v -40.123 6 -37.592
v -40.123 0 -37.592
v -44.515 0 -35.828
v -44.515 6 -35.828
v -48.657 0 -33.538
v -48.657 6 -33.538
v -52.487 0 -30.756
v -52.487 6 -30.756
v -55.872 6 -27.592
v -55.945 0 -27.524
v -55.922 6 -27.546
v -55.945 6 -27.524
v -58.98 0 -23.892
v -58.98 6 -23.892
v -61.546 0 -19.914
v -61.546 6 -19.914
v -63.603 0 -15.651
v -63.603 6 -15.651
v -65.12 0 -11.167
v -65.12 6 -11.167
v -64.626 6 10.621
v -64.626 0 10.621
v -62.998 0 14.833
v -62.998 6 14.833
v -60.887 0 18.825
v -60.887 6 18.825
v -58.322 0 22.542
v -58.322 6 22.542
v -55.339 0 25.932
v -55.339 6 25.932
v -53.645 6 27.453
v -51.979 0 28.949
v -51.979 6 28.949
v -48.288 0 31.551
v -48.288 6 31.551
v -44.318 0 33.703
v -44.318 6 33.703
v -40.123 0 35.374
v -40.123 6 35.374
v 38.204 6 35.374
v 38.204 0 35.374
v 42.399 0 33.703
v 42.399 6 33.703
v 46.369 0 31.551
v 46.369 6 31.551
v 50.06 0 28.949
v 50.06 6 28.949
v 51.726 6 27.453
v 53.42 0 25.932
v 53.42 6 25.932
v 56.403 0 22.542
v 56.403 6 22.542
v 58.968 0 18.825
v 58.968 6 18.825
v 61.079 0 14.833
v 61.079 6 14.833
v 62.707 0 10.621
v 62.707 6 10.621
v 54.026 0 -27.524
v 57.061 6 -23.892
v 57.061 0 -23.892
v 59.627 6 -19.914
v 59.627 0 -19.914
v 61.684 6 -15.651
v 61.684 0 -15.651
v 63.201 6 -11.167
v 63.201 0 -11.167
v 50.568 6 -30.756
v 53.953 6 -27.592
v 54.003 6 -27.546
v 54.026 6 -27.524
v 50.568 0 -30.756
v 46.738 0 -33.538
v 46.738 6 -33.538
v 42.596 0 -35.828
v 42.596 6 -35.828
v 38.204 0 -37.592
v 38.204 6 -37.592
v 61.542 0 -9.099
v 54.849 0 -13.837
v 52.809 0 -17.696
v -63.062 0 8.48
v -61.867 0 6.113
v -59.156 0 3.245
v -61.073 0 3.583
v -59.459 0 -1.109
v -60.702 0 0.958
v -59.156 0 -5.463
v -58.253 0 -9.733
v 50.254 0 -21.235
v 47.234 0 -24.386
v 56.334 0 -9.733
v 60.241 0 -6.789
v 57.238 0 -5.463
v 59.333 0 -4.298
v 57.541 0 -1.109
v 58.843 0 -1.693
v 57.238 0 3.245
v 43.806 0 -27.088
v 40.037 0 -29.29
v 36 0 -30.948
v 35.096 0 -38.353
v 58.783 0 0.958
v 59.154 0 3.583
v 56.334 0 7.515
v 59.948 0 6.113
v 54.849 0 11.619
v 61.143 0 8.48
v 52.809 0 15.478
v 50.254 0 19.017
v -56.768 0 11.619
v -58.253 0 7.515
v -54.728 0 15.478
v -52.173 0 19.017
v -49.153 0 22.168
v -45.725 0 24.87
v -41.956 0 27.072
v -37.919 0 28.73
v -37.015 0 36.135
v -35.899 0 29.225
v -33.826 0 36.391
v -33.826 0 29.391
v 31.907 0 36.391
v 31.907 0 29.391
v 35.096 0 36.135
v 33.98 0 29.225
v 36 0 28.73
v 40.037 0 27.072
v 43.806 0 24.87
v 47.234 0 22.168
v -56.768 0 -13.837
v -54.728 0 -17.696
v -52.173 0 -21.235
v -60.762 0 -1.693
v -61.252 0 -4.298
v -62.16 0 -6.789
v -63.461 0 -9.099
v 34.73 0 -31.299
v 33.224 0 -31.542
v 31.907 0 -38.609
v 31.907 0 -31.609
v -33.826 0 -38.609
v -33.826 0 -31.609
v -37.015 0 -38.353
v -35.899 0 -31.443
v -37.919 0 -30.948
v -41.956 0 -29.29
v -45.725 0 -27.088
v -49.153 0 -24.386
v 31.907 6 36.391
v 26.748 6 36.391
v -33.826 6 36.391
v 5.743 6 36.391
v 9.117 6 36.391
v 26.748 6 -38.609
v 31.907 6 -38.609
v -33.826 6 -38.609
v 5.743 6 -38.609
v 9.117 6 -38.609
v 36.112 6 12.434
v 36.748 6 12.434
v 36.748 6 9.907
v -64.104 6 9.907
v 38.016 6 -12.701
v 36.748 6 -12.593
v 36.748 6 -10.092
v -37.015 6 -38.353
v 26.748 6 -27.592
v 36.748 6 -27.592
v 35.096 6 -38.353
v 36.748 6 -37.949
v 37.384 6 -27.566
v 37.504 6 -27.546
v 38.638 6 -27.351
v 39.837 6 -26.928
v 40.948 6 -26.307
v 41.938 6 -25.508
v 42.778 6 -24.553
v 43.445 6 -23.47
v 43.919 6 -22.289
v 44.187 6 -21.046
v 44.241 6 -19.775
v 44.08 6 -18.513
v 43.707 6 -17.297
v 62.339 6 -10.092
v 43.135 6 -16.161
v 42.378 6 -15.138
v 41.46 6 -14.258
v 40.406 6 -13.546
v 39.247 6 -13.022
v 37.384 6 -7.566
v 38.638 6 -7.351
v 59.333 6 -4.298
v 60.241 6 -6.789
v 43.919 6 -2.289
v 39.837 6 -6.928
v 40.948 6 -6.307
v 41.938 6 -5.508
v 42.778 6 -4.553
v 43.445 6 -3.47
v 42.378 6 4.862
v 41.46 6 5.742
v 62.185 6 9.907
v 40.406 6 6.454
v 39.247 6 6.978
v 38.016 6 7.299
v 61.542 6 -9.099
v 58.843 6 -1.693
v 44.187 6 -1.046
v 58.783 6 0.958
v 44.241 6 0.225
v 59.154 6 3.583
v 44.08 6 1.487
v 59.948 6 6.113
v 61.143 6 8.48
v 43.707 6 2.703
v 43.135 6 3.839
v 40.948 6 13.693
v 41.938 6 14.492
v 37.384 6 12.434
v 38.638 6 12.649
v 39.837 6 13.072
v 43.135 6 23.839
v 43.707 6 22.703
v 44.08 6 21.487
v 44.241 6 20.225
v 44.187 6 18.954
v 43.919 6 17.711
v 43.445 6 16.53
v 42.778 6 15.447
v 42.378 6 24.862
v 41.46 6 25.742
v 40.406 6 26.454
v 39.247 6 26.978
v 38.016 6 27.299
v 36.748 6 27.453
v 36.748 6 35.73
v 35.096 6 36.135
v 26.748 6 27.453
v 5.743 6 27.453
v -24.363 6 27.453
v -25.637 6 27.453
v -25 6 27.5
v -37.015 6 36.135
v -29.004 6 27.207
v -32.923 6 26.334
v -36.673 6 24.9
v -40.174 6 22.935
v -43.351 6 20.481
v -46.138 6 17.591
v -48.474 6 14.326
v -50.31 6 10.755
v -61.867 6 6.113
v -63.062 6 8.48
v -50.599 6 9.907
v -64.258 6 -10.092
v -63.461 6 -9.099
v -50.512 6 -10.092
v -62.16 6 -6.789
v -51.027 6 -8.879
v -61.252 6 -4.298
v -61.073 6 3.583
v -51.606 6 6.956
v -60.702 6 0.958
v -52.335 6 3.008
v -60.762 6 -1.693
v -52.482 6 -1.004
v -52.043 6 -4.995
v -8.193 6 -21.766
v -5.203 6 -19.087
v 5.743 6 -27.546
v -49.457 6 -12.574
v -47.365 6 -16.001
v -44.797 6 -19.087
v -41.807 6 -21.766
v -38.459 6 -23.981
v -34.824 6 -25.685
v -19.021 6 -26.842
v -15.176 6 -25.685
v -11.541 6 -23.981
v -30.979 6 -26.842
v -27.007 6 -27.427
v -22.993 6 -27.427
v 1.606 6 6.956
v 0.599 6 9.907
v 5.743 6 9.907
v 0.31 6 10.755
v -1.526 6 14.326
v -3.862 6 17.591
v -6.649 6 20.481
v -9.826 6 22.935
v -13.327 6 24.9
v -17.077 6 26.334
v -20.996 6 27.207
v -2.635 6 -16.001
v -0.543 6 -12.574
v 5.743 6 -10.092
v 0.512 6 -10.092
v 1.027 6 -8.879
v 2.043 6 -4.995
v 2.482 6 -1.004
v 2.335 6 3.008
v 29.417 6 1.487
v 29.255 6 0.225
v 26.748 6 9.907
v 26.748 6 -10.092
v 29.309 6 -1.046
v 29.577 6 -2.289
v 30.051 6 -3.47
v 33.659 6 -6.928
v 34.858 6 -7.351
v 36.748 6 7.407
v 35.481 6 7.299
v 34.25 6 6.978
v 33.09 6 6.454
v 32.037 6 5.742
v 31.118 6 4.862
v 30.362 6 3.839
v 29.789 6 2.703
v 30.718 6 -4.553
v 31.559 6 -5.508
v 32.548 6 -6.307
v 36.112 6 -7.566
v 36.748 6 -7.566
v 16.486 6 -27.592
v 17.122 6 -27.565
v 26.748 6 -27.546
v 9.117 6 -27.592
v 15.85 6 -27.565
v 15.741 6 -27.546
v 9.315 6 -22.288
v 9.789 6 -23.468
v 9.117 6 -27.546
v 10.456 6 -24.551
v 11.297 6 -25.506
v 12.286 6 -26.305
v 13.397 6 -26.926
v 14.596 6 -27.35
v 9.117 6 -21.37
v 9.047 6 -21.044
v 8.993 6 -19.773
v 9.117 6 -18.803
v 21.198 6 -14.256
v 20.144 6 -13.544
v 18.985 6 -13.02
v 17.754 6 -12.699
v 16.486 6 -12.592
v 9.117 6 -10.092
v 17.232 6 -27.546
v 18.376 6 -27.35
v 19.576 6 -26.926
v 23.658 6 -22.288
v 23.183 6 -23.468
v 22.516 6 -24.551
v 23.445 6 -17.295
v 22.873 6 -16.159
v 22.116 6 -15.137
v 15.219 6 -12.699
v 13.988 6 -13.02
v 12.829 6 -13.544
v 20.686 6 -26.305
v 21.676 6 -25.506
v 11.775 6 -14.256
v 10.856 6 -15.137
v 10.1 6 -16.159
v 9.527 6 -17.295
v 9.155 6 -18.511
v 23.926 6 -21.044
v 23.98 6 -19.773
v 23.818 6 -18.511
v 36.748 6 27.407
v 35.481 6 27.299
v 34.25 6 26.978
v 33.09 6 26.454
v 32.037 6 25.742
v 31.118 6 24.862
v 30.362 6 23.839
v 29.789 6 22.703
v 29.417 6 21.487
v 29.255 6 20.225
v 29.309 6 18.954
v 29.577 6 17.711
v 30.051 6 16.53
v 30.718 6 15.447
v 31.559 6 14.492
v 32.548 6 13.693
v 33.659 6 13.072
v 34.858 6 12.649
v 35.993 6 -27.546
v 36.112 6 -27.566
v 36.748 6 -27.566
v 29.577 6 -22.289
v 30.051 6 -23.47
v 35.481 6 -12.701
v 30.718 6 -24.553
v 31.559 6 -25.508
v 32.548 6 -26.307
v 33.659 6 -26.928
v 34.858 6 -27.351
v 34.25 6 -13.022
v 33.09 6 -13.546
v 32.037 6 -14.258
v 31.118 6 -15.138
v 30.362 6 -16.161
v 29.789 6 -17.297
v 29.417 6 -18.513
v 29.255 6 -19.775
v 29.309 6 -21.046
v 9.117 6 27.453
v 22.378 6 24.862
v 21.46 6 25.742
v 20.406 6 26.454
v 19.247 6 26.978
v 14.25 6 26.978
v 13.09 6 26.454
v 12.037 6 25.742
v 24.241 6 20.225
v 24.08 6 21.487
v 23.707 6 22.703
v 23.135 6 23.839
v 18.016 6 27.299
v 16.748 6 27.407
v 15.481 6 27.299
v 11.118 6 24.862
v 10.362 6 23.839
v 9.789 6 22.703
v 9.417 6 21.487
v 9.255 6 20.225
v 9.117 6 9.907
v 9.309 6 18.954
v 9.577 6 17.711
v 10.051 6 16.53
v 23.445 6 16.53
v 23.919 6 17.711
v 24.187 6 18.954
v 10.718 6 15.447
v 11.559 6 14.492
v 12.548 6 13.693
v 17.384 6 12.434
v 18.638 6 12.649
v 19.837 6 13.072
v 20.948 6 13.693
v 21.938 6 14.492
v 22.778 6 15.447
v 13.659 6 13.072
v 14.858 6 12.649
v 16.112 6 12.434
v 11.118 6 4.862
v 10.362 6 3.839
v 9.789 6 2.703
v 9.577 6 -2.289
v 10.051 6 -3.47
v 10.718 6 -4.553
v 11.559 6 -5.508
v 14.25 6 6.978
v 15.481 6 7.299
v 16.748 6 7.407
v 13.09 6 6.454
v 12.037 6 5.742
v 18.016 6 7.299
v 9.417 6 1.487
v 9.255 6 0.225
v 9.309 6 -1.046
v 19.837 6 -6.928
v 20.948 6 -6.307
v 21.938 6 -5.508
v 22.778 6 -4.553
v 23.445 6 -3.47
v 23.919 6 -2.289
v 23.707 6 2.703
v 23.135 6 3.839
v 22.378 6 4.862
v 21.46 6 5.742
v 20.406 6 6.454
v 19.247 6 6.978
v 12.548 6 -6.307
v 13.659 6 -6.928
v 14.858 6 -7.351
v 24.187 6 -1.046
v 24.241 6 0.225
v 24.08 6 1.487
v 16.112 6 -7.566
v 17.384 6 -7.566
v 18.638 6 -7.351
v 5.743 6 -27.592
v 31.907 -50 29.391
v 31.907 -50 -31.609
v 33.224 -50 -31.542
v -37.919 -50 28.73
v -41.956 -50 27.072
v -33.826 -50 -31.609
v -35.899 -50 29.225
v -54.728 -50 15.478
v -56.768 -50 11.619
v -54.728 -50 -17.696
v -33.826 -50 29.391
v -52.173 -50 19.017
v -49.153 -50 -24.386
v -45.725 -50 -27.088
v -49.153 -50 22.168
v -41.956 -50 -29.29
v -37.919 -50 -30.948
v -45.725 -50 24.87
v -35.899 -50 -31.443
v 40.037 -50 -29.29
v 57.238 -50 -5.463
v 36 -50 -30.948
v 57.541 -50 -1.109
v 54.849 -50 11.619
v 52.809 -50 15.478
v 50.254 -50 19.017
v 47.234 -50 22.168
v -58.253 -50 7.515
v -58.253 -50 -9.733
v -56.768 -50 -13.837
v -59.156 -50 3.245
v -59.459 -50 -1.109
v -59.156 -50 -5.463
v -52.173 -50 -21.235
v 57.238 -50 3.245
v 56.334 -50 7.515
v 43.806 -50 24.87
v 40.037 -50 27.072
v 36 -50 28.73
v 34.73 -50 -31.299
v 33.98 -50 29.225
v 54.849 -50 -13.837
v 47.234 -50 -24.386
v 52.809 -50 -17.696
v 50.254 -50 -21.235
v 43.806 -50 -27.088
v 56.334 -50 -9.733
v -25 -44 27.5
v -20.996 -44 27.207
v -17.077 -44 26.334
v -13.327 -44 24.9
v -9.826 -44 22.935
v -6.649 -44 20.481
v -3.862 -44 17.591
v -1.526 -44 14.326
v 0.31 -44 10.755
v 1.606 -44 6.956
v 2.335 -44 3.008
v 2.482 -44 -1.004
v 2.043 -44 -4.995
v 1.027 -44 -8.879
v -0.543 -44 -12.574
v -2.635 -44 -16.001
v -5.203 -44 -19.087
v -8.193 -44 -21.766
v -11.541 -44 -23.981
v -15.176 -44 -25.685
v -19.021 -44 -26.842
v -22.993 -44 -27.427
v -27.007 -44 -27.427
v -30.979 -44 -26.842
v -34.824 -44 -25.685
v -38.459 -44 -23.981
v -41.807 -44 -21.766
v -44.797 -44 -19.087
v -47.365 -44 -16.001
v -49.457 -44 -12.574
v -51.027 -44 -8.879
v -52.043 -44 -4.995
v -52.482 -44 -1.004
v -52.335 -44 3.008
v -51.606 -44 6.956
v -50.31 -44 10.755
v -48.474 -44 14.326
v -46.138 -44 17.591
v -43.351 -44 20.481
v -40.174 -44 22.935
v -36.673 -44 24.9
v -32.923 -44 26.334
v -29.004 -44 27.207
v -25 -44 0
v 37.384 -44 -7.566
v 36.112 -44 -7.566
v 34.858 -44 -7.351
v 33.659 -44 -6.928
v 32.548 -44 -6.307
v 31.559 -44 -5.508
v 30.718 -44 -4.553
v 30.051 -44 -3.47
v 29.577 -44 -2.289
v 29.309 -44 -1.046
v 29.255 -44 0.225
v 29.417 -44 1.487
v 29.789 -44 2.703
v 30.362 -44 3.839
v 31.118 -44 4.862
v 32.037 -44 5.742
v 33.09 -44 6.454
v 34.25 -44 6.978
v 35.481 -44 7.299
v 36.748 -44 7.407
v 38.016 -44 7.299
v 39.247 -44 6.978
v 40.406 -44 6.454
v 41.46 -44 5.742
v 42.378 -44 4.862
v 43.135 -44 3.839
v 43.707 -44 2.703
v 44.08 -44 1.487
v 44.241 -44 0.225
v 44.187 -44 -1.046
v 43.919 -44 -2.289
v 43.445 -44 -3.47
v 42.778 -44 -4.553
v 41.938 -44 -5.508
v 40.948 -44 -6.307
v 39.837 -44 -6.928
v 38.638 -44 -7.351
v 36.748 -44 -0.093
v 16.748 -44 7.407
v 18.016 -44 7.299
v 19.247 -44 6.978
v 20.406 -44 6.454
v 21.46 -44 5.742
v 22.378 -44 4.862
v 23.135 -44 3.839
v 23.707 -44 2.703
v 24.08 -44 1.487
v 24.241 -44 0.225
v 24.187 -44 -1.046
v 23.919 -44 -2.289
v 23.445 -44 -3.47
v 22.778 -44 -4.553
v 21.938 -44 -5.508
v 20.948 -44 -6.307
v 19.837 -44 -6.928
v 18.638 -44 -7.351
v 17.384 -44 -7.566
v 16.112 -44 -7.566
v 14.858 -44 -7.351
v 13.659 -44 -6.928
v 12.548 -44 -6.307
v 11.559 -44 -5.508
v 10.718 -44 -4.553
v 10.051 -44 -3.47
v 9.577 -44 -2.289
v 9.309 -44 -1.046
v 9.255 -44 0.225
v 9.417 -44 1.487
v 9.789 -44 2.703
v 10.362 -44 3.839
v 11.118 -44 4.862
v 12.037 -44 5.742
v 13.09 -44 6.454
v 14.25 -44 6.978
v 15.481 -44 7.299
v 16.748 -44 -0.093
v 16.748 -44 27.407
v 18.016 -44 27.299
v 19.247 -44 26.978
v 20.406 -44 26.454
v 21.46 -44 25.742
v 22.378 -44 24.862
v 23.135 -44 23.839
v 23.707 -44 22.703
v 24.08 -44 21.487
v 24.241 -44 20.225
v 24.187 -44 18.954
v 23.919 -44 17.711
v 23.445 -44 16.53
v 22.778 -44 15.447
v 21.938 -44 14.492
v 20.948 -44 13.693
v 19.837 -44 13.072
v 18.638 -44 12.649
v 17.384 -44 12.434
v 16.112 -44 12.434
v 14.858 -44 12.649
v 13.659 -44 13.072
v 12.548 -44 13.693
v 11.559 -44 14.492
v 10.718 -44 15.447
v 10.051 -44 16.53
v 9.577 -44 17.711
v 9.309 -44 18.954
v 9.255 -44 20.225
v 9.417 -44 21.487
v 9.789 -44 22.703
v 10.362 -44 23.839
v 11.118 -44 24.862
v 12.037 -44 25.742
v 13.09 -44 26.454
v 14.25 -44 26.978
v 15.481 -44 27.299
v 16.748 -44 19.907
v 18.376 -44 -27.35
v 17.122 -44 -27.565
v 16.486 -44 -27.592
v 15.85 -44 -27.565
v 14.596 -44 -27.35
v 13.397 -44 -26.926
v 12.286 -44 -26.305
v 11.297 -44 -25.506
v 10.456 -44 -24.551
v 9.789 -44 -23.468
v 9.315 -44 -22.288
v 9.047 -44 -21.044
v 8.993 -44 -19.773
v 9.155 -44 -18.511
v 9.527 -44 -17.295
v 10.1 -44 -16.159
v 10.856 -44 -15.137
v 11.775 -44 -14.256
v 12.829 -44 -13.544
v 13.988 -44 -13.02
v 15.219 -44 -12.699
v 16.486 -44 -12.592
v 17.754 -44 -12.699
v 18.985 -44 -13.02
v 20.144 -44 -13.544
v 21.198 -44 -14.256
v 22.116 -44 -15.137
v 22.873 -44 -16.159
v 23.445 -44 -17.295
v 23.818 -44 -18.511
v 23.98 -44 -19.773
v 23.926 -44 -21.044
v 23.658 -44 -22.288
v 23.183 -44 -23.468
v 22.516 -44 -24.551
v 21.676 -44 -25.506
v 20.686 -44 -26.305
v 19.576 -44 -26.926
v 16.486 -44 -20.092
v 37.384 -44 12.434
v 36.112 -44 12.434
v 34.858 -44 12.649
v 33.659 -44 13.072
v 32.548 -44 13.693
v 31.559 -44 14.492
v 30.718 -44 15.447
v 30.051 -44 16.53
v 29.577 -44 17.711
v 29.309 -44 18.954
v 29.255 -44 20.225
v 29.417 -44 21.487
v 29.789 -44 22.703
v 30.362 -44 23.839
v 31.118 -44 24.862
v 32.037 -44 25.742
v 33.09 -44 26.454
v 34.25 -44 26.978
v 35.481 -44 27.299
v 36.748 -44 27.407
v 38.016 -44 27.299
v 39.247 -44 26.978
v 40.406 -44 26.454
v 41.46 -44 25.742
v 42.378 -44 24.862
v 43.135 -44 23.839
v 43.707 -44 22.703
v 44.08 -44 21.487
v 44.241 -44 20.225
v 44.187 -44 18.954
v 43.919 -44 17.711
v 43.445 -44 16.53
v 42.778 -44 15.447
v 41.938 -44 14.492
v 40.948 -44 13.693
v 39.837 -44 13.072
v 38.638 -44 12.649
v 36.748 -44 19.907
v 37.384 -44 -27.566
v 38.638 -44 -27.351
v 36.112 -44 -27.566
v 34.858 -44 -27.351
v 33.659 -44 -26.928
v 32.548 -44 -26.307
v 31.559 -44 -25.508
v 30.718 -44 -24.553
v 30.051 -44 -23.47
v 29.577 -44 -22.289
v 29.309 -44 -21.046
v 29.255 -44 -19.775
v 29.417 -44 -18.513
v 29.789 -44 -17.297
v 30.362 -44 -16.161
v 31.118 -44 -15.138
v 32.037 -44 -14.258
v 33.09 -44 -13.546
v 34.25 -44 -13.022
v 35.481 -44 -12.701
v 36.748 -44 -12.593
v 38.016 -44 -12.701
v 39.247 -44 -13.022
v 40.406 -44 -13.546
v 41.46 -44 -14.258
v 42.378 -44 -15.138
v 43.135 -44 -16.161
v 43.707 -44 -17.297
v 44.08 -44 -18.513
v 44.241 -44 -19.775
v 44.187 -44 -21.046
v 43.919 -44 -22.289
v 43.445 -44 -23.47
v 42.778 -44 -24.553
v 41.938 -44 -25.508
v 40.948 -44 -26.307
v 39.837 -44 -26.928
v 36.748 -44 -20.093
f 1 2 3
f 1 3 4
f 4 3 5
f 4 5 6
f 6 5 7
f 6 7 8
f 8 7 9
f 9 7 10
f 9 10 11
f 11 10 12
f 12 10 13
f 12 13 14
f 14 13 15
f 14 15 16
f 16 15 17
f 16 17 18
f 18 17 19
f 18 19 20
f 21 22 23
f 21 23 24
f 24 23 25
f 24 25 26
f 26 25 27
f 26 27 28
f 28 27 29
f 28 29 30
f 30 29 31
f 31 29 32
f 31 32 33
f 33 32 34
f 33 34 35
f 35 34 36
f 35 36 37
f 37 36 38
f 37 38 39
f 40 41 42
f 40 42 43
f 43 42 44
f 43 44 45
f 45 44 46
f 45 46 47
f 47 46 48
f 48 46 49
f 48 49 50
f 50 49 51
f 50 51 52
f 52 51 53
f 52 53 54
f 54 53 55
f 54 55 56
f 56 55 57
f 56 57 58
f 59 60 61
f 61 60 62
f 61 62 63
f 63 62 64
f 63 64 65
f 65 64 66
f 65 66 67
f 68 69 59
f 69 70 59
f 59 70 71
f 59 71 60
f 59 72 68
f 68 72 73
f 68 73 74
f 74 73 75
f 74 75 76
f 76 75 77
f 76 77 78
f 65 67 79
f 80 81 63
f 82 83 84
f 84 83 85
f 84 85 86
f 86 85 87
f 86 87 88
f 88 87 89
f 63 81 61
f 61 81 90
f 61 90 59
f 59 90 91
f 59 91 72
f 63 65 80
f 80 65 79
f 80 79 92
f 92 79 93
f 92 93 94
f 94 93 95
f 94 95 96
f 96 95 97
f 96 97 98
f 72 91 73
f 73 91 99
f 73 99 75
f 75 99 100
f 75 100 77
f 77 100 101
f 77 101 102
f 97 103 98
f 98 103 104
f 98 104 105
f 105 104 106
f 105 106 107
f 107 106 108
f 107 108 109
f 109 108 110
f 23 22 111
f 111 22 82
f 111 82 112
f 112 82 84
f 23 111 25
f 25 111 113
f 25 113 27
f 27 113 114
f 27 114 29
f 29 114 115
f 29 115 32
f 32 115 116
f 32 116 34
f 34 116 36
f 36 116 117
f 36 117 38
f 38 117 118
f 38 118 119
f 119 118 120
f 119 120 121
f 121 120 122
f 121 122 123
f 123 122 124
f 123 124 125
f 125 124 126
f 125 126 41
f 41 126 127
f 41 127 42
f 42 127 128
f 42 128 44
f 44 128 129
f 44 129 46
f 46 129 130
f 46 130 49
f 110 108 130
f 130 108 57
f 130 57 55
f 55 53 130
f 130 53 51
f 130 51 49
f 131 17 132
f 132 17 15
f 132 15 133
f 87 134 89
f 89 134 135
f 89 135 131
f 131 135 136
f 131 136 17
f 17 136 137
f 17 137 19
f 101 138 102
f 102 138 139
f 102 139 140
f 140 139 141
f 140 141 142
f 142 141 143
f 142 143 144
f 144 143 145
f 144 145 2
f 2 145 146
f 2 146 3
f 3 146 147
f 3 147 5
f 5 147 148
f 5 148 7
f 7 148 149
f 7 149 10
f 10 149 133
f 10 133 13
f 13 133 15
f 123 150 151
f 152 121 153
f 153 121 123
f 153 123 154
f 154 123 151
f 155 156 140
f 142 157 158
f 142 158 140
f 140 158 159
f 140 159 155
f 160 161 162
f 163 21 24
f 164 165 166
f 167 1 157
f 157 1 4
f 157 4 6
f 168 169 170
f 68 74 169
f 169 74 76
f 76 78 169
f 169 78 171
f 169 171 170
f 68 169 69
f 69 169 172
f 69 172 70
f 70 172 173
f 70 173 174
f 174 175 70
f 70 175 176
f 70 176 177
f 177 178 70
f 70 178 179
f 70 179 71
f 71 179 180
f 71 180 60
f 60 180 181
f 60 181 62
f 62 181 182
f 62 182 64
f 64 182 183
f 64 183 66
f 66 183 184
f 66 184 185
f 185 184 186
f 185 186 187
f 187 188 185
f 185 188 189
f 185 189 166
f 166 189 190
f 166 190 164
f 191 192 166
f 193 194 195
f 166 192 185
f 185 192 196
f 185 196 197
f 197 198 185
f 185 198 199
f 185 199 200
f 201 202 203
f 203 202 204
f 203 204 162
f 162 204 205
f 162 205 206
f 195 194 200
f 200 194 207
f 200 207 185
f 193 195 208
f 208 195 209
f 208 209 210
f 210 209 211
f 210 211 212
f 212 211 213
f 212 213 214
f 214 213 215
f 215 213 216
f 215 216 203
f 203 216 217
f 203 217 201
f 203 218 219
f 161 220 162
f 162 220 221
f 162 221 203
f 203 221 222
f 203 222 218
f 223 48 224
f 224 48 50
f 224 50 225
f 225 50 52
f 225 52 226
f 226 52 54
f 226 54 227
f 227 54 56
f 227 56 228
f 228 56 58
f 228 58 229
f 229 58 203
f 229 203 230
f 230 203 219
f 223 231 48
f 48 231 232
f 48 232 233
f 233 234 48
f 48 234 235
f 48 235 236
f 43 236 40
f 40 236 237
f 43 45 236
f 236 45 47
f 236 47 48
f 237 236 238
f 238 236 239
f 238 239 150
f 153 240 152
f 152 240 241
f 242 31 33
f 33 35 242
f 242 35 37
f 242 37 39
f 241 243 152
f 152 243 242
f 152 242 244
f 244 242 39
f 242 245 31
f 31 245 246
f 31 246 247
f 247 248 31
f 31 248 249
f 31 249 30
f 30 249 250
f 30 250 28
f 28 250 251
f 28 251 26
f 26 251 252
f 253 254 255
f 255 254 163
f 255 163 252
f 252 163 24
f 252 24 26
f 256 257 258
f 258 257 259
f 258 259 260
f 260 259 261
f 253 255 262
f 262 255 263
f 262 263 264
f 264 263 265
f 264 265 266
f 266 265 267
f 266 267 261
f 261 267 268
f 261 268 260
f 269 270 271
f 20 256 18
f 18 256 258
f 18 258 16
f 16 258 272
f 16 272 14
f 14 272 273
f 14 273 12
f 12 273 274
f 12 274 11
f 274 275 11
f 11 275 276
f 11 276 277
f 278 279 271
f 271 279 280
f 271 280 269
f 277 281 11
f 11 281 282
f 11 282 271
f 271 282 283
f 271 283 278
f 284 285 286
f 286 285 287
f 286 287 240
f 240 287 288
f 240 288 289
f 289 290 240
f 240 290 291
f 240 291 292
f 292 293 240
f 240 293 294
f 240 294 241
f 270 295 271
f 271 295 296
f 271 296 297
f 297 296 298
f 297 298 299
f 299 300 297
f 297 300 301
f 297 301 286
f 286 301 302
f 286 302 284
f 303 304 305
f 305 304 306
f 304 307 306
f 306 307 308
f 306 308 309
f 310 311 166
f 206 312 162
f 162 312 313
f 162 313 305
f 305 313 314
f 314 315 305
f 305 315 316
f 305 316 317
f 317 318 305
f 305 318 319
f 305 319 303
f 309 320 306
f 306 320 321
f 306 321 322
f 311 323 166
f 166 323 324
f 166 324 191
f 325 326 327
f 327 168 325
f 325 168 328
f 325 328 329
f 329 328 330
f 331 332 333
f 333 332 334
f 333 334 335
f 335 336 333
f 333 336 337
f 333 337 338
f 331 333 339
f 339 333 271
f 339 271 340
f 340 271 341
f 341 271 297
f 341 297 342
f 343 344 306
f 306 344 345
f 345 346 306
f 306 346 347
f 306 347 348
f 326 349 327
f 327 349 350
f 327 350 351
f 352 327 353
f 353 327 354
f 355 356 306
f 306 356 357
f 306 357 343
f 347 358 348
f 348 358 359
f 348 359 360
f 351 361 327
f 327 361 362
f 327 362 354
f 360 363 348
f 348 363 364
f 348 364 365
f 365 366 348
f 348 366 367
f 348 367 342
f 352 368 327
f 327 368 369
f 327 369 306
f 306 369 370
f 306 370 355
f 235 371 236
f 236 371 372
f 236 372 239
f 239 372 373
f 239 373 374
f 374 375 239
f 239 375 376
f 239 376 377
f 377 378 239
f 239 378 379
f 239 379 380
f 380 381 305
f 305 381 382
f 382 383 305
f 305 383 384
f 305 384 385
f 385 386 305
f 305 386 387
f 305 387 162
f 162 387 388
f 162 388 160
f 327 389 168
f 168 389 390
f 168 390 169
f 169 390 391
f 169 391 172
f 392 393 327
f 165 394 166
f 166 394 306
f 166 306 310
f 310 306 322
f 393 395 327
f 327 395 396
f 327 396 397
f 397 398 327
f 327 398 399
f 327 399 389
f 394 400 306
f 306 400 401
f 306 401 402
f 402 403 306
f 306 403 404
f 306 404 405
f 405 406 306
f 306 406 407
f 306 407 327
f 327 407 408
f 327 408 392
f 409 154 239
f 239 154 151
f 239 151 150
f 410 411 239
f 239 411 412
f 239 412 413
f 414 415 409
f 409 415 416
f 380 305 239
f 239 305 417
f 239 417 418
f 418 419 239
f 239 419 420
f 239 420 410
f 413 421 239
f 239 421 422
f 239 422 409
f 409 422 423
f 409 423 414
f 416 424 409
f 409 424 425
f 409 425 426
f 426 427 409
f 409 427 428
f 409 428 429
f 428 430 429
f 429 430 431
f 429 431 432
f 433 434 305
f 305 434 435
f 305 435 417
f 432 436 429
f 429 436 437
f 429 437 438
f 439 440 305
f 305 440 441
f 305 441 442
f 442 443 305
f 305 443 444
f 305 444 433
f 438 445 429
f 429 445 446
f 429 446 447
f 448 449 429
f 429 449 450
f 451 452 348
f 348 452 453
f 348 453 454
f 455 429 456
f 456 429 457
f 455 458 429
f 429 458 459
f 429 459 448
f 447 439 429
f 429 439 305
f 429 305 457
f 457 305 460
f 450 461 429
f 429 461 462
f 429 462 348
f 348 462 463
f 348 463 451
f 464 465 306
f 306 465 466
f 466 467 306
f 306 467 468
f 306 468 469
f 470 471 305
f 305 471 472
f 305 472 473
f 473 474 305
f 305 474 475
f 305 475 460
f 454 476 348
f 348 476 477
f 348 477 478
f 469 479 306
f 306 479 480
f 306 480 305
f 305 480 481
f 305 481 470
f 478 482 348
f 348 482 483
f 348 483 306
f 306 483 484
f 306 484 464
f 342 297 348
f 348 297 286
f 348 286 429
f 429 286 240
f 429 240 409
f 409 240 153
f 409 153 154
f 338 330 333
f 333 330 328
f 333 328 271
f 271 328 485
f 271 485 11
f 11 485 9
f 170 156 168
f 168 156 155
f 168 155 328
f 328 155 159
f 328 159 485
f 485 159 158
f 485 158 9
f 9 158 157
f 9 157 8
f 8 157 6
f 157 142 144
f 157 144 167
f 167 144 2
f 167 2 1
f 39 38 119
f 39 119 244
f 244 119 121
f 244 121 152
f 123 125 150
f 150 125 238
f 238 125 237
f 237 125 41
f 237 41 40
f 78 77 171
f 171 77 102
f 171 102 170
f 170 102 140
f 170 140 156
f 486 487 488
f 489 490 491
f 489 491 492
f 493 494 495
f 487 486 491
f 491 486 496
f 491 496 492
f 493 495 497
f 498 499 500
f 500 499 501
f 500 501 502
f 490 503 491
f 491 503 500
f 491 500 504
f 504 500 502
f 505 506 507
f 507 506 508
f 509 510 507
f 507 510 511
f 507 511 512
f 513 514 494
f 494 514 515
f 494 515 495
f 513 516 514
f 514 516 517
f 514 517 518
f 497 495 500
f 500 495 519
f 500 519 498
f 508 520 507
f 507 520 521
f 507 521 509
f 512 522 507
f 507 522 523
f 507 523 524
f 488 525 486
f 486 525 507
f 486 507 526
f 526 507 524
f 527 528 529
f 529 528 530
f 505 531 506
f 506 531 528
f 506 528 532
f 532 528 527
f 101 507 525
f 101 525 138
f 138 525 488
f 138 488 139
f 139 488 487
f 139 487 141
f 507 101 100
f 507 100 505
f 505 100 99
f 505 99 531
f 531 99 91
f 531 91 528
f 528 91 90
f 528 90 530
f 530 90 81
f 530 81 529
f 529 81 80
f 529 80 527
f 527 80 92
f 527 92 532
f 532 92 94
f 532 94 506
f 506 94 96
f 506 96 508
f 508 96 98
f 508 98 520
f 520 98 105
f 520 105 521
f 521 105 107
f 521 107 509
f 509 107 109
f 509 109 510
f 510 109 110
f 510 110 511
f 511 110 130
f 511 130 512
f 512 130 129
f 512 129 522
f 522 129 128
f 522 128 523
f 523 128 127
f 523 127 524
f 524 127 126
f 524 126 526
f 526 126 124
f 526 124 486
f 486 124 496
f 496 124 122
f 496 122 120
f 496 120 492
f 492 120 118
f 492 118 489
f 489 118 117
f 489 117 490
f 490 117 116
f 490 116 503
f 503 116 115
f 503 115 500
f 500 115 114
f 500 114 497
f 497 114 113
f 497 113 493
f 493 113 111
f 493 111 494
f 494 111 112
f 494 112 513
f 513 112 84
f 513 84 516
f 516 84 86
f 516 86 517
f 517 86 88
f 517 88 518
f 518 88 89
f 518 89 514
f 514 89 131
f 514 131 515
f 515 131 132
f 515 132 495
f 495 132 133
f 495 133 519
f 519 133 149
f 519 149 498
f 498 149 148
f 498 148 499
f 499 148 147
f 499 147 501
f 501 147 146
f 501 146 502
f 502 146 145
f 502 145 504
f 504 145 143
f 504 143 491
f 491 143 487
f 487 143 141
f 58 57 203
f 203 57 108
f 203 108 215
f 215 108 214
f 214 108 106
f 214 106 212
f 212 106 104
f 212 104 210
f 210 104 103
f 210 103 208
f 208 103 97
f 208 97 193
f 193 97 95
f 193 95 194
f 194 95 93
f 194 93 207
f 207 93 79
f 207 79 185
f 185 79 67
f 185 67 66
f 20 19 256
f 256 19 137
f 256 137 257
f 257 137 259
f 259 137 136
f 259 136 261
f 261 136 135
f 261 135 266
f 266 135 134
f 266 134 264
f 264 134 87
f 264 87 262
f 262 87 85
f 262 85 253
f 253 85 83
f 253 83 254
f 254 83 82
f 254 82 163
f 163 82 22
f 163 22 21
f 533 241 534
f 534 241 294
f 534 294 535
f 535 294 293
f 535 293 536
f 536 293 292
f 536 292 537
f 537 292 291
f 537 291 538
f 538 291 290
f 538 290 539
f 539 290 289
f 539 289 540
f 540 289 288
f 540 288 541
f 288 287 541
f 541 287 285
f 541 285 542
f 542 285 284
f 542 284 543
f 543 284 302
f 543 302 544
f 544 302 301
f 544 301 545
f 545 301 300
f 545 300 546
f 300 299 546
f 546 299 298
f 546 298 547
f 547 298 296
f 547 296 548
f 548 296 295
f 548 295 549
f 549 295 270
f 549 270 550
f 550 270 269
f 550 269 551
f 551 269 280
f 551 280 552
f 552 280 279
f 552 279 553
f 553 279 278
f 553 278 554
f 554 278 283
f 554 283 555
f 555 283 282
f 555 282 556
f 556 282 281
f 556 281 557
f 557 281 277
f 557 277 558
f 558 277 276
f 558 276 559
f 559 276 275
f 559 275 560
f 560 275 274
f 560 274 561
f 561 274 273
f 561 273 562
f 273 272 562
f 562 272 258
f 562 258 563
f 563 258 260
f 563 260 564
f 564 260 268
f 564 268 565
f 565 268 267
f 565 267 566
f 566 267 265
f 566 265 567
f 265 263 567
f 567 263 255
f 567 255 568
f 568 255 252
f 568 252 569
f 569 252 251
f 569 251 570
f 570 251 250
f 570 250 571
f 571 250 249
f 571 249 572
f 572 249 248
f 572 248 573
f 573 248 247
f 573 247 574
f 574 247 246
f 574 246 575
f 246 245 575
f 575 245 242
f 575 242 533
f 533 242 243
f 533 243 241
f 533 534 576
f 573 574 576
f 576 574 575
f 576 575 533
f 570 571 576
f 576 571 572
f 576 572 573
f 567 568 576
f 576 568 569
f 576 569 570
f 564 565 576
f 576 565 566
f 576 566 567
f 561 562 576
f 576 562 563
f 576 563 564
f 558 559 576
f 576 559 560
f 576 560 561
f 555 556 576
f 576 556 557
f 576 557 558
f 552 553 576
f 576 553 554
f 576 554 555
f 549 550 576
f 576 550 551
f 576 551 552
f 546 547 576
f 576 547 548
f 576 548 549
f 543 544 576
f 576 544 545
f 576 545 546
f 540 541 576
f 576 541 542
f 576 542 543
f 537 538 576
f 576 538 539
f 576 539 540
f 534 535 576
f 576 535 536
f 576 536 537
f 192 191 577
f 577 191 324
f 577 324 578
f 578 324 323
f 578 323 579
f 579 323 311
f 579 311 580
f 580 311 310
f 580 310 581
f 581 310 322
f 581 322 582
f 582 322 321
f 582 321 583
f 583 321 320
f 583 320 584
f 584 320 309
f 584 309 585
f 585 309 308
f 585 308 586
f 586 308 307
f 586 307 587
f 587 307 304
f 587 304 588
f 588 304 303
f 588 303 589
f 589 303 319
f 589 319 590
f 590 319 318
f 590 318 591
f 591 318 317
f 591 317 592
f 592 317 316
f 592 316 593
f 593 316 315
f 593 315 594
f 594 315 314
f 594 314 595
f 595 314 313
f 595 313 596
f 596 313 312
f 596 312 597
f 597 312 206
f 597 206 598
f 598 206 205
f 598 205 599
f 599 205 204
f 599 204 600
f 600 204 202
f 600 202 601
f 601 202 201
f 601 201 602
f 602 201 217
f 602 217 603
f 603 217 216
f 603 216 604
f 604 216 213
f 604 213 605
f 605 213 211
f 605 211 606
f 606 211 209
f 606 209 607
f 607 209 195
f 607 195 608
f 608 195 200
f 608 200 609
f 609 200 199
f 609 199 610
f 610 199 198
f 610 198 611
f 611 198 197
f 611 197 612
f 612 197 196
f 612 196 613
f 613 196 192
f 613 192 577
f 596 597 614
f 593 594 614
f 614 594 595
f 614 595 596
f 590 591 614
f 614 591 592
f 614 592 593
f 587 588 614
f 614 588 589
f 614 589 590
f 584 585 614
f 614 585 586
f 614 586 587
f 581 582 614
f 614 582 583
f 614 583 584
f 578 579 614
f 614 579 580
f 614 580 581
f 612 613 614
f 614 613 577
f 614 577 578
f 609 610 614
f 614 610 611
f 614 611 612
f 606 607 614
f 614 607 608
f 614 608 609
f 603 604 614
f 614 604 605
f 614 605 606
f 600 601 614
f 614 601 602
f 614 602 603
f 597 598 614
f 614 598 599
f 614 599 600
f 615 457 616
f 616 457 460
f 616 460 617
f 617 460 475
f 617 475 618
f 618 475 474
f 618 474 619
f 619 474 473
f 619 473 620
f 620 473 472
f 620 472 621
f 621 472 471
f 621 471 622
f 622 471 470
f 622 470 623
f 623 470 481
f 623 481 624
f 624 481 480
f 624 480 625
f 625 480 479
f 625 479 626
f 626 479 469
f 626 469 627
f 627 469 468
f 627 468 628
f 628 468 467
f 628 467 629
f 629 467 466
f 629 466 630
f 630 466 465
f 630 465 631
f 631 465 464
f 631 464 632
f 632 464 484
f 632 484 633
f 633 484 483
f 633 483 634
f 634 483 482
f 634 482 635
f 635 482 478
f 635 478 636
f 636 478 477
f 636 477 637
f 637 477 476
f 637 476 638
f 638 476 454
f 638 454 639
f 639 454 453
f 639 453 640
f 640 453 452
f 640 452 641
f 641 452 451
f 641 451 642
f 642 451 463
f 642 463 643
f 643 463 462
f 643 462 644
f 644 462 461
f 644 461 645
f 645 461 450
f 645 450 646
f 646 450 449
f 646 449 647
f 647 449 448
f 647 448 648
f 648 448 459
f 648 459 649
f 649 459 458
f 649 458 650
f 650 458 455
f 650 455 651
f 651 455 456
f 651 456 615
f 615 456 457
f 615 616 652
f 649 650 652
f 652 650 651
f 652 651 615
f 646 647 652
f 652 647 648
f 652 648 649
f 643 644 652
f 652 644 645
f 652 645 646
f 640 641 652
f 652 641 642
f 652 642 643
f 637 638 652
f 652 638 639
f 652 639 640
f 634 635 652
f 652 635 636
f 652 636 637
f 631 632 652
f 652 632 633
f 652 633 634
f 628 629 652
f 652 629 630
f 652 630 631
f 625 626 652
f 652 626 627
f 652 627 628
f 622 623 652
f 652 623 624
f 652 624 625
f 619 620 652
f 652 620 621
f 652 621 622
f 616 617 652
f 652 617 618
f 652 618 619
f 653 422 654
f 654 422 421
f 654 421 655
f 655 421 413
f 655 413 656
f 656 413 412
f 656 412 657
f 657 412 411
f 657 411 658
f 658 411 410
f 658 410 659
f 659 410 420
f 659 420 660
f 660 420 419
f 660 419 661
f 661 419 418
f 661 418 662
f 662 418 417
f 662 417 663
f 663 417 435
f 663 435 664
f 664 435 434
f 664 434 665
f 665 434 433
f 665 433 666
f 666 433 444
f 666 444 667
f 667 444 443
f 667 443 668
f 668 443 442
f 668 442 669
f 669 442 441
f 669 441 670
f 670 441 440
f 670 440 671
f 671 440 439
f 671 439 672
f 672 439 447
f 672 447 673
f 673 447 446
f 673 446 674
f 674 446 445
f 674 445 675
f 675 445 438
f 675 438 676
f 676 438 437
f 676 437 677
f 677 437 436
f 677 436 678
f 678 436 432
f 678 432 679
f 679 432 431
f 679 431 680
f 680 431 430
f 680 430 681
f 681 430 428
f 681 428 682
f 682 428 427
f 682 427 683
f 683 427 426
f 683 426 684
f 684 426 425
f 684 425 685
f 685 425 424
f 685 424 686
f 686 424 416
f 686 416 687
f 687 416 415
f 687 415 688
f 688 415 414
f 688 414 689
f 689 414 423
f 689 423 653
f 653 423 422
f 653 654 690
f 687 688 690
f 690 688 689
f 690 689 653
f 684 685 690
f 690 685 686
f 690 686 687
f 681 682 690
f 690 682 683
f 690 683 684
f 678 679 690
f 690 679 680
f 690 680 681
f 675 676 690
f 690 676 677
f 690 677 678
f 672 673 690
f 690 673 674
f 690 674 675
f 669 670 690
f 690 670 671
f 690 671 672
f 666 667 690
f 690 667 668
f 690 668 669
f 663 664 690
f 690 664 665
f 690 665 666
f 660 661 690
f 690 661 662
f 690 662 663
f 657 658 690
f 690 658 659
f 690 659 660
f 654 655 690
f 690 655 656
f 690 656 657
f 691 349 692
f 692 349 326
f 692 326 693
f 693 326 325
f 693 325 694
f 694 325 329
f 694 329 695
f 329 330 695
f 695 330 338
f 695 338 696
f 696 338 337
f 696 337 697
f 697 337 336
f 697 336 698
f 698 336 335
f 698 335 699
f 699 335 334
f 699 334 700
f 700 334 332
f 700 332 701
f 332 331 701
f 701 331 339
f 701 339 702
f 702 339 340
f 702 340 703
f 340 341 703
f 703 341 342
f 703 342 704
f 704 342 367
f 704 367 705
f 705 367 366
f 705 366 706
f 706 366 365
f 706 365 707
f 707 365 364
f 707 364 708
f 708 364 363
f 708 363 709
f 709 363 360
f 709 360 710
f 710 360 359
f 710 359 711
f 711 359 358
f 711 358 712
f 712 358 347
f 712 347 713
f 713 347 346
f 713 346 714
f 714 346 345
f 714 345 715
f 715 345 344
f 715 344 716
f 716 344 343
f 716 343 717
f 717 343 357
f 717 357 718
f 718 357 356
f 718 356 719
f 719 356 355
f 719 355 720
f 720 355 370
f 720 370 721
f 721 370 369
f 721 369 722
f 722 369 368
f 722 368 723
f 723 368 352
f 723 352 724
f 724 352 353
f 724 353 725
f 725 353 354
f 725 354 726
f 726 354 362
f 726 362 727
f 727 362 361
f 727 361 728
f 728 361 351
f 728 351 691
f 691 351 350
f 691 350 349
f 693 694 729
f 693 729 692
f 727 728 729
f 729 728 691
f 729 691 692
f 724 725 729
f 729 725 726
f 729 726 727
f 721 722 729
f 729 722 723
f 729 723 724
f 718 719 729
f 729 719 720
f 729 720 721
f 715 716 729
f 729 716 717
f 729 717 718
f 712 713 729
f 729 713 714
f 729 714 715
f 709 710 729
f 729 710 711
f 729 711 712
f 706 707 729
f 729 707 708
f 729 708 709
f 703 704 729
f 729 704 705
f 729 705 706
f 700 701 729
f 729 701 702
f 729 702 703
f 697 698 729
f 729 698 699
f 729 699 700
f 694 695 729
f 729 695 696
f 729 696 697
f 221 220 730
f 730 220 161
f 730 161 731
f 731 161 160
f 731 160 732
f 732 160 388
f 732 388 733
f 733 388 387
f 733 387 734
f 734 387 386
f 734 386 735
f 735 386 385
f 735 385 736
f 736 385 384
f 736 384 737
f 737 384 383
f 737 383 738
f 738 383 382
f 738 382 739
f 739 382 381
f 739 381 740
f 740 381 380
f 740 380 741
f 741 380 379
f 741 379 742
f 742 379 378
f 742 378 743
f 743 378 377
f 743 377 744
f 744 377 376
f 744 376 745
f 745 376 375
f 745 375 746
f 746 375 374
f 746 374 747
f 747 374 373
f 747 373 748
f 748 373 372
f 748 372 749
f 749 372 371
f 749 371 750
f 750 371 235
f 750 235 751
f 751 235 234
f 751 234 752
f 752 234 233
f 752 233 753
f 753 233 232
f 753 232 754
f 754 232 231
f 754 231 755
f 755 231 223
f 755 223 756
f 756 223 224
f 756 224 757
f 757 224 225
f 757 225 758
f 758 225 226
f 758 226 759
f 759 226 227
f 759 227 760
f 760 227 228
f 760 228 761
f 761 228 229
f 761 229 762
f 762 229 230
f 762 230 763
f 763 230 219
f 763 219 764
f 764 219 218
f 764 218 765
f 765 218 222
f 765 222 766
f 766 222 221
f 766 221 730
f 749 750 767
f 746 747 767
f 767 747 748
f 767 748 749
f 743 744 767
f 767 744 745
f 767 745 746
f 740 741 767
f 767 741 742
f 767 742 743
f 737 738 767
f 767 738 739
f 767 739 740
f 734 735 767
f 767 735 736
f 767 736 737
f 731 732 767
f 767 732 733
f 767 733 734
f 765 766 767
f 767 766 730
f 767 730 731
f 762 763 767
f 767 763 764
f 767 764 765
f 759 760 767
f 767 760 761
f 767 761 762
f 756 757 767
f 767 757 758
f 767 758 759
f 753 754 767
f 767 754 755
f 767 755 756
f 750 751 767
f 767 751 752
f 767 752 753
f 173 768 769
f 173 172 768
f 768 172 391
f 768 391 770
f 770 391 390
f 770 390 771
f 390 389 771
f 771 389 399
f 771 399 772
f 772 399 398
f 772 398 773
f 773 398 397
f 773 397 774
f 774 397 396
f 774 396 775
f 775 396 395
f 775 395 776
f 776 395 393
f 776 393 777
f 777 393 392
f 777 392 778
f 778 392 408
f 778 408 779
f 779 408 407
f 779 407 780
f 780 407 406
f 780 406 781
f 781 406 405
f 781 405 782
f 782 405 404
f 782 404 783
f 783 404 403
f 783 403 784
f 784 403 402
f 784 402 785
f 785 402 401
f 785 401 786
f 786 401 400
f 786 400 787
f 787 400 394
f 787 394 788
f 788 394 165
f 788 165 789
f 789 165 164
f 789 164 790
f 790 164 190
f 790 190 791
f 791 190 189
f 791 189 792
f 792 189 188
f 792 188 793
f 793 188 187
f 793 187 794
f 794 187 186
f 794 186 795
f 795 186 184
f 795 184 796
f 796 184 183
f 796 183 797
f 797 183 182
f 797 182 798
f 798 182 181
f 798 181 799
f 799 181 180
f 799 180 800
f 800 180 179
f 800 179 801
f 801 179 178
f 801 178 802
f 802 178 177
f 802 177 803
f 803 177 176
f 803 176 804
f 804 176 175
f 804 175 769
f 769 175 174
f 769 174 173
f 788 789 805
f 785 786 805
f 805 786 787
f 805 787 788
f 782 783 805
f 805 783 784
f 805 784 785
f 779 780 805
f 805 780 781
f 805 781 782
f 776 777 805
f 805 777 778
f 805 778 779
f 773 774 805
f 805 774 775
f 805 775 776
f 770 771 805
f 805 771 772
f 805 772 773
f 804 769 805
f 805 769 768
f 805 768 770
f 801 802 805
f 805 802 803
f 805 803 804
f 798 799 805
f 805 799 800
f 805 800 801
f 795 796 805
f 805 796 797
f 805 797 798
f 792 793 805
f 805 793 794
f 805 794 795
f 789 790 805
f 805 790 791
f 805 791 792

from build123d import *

# Parameters (mm, degrees)
BOSS_EXTRUDE1_DEPTH = 6
FILLET1_R           = 20
SKETCH4_W           = 3
SKETCH4_H           = 50
SKETCH6_R           = 16.245672788
CUT_EXTRUDE1_DEPTH  = 10
BOSS_EXTRUDE2_DEPTH = 3
CUT_EXTRUDE2_DEPTH  = 44
BOSS_EXTRUDE3_DEPTH = 53
SKETCH11_R          = 27.5
SKETCH11_R_2        = 7.5
CUT_EXTRUDE4_DEPTH  = 50


with BuildPart() as part:
    # Sketch1 → Boss-Extrude1 (new body)
    with BuildSketch(Plane(origin=(0, 0, 0), x_dir=(1, 0, 0), z_dir=(0, 1, 0))):
        with BuildLine():
            Line((34.540516942, 38.609131748), (-36.459483058, 38.609131748))
            ThreePointArc((-36.459483058, 38.609131748), (-66.459483058, 1.109131748), (-36.459483058, -36.390868252))
            Line((-36.459483058, -36.390868252), (34.540516942, -36.390868252))
            ThreePointArc((34.540516942, -36.390868252), (64.540516942, 1.109131748), (34.540516942, 38.609131748))
        make_face()
    extrude(amount=BOSS_EXTRUDE1_DEPTH)

    # Fillet1
    fillet1_edges = [part.edges().sort_by_distance(p)[0] for p in [
        (-36.459483058, 3, -38.609131748),
        (34.540516942, 3, -38.609131748),
        (34.540516942, 3, 36.390868252),
        (-36.459483058, 3, 36.390868252),
    ]]
    fillet(fillet1_edges, radius=FILLET1_R)

    # Sweep1: sweep along a path in Sketch3
    with BuildLine(Plane.XZ) as sweep1_path:
        Line((31.907446823, 29.390868252), (-33.82641294, 29.390868252))
        ThreePointArc((-33.82641294, 29.390868252), (-35.899239553, 29.224550102), (-37.919027907, 28.729851303))
        ThreePointArc((-37.919027907, 28.729851303), (-59.459483058, -1.109131748), (-37.919027907, -30.948114799))
        ThreePointArc((-37.919027907, -30.948114799), (-35.899239553, -31.442813598), (-33.82641294, -31.609131748))
        Line((-33.82641294, -31.609131748), (31.907446823, -31.609131748))
        ThreePointArc((31.907446823, -31.609131748), (33.980273437, -31.442813598), (36.000061791, -30.948114799))
        ThreePointArc((36.000061791, -30.948114799), (57.540516942, -1.109131748), (36.000061791, 28.729851303))
        ThreePointArc((36.000061791, 28.729851303), (33.980273437, 29.224550102), (31.907446823, 29.390868252))
    # Sketch4 → Sweep1 (sweep)
    with BuildSketch(Plane(origin=(31.907446823, 0, -31.609131748), x_dir=(0, 0, -1), z_dir=(1, 0, 0))):
        with Locations((-1.5, -25)):
            Rectangle(SKETCH4_W, SKETCH4_H)
    sweep(path=sweep1_path.line)

    # Sketch6 → Cut-Extrude1 (cut)
    with BuildSketch(Plane(origin=(0, 0, 0), x_dir=(1, 0, 0), z_dir=(0, 1, 0))):
        with Locations((75, 0)):
            Circle(SKETCH6_R)
        with Locations((-76.918966117, 0)):
            Circle(SKETCH6_R)
    extrude(amount=CUT_EXTRUDE1_DEPTH, mode=Mode.SUBTRACT)

    # Sketch7 → Boss-Extrude2 (add)
    with BuildSketch(Plane.XZ.offset(50)):
        with BuildLine():
            Line((31.907446823, 26.390868252), (-33.82641294, 26.390868252))
            ThreePointArc((-33.82641294, 26.390868252), (-35.42089495, 26.262931214), (-36.974578299, 25.882393676))
            ThreePointArc((-36.974578299, 25.882393676), (-56.459483058, -1.109131748), (-36.974578299, -28.100657171))
            ThreePointArc((-36.974578299, -28.100657171), (-35.42089495, -28.481194709), (-33.82641294, -28.609131748))
            Line((-33.82641294, -28.609131748), (31.907446823, -28.609131748))
            ThreePointArc((31.907446823, -28.609131748), (33.501928834, -28.481194709), (35.055612183, -28.100657171))
            ThreePointArc((35.055612183, -28.100657171), (54.540516942, -1.109131748), (35.055612183, 25.882393676))
            ThreePointArc((35.055612183, 25.882393676), (33.501928834, 26.262931214), (31.907446823, 26.390868252))
        make_face()
    extrude(amount=-BOSS_EXTRUDE2_DEPTH)

    # Sketch9 → Cut-Extrude2 (cut)
    with BuildSketch(Plane.XZ):
        with BuildLine():
            Line((-33.82641294, -28.609131748), (31.907446823, -28.609131748))
            ThreePointArc((31.907446823, -28.609131748), (33.501928834, -28.481194709), (35.055612183, -28.100657171))
            ThreePointArc((35.055612183, -28.100657171), (54.540516942, -1.109131748), (35.055612183, 25.882393676))
            ThreePointArc((35.055612183, 25.882393676), (33.501928834, 26.262931214), (31.907446823, 26.390868252))
            Line((31.907446823, 26.390868252), (-33.82641294, 26.390868252))
            ThreePointArc((-33.82641294, 26.390868252), (-35.42089495, 26.262931214), (-36.974578299, 25.882393676))
            ThreePointArc((-36.974578299, 25.882393676), (-56.459483058, -1.109131748), (-36.974578299, -28.100657171))
            ThreePointArc((-36.974578299, -28.100657171), (-35.42089495, -28.481194709), (-33.82641294, -28.609131748))
        make_face()
    extrude(amount=-CUT_EXTRUDE2_DEPTH, mode=Mode.SUBTRACT)

    # Sketch10 → Boss-Extrude3 (add)
    with BuildSketch(Plane(origin=(0, -47, 0), x_dir=(1, 0, 0), z_dir=(0, 1, 0))):
        with BuildLine():
            Line((31.907446823, 28.609131748), (-33.82641294, 28.609131748))
            ThreePointArc((-33.82641294, 28.609131748), (-35.42089495, 28.481194709), (-36.974578299, 28.100657171))
            ThreePointArc((-36.974578299, 28.100657171), (-56.459483058, 1.109131748), (-36.974578299, -25.882393676))
            ThreePointArc((-36.974578299, -25.882393676), (-35.42089495, -26.262931214), (-33.82641294, -26.390868252))
            Line((-33.82641294, -26.390868252), (31.907446823, -26.390868252))
            ThreePointArc((31.907446823, -26.390868252), (33.501928834, -26.262931214), (35.055612183, -25.882393676))
            ThreePointArc((35.055612183, -25.882393676), (54.540516942, 1.109131748), (35.055612183, 28.100657171))
            ThreePointArc((35.055612183, 28.100657171), (33.501928834, 28.481194709), (31.907446823, 28.609131748))
        make_face()
    extrude(amount=BOSS_EXTRUDE3_DEPTH)

    # Sketch11 → Cut-Extrude4 (cut)
    with BuildSketch(Plane(origin=(0, 6, 0), x_dir=(1, 0, 0), z_dir=(0, 1, 0))):
        with Locations(Location((-25, 0, 0), (0, 0, 270))):
            Circle(SKETCH11_R)
        with Locations(Location((16.748195248, 0.093303674, 0), (0, 0, 270))):
            Circle(SKETCH11_R_2)
        with Locations(Location((16.748195248, -19.906696326, 0), (0, 0, 270))):
            Circle(SKETCH11_R_2)
        with Locations(Location((16.486268254, 20.091588457, 0), (0, 0, 90))):
            Circle(SKETCH11_R_2)
        with Locations(Location((36.748195248, 0.093303674, 0), (0, 0, 270))):
            Circle(SKETCH11_R_2)
        with Locations(Location((36.748195248, -19.906696326, 0), (0, 0, 270))):
            Circle(SKETCH11_R_2)
        with Locations(Location((36.748195248, 20.093303674, 0), (0, 0, 270))):
            Circle(SKETCH11_R_2)
    extrude(amount=-CUT_EXTRUDE4_DEPTH, mode=Mode.SUBTRACT)


solid = part.part
